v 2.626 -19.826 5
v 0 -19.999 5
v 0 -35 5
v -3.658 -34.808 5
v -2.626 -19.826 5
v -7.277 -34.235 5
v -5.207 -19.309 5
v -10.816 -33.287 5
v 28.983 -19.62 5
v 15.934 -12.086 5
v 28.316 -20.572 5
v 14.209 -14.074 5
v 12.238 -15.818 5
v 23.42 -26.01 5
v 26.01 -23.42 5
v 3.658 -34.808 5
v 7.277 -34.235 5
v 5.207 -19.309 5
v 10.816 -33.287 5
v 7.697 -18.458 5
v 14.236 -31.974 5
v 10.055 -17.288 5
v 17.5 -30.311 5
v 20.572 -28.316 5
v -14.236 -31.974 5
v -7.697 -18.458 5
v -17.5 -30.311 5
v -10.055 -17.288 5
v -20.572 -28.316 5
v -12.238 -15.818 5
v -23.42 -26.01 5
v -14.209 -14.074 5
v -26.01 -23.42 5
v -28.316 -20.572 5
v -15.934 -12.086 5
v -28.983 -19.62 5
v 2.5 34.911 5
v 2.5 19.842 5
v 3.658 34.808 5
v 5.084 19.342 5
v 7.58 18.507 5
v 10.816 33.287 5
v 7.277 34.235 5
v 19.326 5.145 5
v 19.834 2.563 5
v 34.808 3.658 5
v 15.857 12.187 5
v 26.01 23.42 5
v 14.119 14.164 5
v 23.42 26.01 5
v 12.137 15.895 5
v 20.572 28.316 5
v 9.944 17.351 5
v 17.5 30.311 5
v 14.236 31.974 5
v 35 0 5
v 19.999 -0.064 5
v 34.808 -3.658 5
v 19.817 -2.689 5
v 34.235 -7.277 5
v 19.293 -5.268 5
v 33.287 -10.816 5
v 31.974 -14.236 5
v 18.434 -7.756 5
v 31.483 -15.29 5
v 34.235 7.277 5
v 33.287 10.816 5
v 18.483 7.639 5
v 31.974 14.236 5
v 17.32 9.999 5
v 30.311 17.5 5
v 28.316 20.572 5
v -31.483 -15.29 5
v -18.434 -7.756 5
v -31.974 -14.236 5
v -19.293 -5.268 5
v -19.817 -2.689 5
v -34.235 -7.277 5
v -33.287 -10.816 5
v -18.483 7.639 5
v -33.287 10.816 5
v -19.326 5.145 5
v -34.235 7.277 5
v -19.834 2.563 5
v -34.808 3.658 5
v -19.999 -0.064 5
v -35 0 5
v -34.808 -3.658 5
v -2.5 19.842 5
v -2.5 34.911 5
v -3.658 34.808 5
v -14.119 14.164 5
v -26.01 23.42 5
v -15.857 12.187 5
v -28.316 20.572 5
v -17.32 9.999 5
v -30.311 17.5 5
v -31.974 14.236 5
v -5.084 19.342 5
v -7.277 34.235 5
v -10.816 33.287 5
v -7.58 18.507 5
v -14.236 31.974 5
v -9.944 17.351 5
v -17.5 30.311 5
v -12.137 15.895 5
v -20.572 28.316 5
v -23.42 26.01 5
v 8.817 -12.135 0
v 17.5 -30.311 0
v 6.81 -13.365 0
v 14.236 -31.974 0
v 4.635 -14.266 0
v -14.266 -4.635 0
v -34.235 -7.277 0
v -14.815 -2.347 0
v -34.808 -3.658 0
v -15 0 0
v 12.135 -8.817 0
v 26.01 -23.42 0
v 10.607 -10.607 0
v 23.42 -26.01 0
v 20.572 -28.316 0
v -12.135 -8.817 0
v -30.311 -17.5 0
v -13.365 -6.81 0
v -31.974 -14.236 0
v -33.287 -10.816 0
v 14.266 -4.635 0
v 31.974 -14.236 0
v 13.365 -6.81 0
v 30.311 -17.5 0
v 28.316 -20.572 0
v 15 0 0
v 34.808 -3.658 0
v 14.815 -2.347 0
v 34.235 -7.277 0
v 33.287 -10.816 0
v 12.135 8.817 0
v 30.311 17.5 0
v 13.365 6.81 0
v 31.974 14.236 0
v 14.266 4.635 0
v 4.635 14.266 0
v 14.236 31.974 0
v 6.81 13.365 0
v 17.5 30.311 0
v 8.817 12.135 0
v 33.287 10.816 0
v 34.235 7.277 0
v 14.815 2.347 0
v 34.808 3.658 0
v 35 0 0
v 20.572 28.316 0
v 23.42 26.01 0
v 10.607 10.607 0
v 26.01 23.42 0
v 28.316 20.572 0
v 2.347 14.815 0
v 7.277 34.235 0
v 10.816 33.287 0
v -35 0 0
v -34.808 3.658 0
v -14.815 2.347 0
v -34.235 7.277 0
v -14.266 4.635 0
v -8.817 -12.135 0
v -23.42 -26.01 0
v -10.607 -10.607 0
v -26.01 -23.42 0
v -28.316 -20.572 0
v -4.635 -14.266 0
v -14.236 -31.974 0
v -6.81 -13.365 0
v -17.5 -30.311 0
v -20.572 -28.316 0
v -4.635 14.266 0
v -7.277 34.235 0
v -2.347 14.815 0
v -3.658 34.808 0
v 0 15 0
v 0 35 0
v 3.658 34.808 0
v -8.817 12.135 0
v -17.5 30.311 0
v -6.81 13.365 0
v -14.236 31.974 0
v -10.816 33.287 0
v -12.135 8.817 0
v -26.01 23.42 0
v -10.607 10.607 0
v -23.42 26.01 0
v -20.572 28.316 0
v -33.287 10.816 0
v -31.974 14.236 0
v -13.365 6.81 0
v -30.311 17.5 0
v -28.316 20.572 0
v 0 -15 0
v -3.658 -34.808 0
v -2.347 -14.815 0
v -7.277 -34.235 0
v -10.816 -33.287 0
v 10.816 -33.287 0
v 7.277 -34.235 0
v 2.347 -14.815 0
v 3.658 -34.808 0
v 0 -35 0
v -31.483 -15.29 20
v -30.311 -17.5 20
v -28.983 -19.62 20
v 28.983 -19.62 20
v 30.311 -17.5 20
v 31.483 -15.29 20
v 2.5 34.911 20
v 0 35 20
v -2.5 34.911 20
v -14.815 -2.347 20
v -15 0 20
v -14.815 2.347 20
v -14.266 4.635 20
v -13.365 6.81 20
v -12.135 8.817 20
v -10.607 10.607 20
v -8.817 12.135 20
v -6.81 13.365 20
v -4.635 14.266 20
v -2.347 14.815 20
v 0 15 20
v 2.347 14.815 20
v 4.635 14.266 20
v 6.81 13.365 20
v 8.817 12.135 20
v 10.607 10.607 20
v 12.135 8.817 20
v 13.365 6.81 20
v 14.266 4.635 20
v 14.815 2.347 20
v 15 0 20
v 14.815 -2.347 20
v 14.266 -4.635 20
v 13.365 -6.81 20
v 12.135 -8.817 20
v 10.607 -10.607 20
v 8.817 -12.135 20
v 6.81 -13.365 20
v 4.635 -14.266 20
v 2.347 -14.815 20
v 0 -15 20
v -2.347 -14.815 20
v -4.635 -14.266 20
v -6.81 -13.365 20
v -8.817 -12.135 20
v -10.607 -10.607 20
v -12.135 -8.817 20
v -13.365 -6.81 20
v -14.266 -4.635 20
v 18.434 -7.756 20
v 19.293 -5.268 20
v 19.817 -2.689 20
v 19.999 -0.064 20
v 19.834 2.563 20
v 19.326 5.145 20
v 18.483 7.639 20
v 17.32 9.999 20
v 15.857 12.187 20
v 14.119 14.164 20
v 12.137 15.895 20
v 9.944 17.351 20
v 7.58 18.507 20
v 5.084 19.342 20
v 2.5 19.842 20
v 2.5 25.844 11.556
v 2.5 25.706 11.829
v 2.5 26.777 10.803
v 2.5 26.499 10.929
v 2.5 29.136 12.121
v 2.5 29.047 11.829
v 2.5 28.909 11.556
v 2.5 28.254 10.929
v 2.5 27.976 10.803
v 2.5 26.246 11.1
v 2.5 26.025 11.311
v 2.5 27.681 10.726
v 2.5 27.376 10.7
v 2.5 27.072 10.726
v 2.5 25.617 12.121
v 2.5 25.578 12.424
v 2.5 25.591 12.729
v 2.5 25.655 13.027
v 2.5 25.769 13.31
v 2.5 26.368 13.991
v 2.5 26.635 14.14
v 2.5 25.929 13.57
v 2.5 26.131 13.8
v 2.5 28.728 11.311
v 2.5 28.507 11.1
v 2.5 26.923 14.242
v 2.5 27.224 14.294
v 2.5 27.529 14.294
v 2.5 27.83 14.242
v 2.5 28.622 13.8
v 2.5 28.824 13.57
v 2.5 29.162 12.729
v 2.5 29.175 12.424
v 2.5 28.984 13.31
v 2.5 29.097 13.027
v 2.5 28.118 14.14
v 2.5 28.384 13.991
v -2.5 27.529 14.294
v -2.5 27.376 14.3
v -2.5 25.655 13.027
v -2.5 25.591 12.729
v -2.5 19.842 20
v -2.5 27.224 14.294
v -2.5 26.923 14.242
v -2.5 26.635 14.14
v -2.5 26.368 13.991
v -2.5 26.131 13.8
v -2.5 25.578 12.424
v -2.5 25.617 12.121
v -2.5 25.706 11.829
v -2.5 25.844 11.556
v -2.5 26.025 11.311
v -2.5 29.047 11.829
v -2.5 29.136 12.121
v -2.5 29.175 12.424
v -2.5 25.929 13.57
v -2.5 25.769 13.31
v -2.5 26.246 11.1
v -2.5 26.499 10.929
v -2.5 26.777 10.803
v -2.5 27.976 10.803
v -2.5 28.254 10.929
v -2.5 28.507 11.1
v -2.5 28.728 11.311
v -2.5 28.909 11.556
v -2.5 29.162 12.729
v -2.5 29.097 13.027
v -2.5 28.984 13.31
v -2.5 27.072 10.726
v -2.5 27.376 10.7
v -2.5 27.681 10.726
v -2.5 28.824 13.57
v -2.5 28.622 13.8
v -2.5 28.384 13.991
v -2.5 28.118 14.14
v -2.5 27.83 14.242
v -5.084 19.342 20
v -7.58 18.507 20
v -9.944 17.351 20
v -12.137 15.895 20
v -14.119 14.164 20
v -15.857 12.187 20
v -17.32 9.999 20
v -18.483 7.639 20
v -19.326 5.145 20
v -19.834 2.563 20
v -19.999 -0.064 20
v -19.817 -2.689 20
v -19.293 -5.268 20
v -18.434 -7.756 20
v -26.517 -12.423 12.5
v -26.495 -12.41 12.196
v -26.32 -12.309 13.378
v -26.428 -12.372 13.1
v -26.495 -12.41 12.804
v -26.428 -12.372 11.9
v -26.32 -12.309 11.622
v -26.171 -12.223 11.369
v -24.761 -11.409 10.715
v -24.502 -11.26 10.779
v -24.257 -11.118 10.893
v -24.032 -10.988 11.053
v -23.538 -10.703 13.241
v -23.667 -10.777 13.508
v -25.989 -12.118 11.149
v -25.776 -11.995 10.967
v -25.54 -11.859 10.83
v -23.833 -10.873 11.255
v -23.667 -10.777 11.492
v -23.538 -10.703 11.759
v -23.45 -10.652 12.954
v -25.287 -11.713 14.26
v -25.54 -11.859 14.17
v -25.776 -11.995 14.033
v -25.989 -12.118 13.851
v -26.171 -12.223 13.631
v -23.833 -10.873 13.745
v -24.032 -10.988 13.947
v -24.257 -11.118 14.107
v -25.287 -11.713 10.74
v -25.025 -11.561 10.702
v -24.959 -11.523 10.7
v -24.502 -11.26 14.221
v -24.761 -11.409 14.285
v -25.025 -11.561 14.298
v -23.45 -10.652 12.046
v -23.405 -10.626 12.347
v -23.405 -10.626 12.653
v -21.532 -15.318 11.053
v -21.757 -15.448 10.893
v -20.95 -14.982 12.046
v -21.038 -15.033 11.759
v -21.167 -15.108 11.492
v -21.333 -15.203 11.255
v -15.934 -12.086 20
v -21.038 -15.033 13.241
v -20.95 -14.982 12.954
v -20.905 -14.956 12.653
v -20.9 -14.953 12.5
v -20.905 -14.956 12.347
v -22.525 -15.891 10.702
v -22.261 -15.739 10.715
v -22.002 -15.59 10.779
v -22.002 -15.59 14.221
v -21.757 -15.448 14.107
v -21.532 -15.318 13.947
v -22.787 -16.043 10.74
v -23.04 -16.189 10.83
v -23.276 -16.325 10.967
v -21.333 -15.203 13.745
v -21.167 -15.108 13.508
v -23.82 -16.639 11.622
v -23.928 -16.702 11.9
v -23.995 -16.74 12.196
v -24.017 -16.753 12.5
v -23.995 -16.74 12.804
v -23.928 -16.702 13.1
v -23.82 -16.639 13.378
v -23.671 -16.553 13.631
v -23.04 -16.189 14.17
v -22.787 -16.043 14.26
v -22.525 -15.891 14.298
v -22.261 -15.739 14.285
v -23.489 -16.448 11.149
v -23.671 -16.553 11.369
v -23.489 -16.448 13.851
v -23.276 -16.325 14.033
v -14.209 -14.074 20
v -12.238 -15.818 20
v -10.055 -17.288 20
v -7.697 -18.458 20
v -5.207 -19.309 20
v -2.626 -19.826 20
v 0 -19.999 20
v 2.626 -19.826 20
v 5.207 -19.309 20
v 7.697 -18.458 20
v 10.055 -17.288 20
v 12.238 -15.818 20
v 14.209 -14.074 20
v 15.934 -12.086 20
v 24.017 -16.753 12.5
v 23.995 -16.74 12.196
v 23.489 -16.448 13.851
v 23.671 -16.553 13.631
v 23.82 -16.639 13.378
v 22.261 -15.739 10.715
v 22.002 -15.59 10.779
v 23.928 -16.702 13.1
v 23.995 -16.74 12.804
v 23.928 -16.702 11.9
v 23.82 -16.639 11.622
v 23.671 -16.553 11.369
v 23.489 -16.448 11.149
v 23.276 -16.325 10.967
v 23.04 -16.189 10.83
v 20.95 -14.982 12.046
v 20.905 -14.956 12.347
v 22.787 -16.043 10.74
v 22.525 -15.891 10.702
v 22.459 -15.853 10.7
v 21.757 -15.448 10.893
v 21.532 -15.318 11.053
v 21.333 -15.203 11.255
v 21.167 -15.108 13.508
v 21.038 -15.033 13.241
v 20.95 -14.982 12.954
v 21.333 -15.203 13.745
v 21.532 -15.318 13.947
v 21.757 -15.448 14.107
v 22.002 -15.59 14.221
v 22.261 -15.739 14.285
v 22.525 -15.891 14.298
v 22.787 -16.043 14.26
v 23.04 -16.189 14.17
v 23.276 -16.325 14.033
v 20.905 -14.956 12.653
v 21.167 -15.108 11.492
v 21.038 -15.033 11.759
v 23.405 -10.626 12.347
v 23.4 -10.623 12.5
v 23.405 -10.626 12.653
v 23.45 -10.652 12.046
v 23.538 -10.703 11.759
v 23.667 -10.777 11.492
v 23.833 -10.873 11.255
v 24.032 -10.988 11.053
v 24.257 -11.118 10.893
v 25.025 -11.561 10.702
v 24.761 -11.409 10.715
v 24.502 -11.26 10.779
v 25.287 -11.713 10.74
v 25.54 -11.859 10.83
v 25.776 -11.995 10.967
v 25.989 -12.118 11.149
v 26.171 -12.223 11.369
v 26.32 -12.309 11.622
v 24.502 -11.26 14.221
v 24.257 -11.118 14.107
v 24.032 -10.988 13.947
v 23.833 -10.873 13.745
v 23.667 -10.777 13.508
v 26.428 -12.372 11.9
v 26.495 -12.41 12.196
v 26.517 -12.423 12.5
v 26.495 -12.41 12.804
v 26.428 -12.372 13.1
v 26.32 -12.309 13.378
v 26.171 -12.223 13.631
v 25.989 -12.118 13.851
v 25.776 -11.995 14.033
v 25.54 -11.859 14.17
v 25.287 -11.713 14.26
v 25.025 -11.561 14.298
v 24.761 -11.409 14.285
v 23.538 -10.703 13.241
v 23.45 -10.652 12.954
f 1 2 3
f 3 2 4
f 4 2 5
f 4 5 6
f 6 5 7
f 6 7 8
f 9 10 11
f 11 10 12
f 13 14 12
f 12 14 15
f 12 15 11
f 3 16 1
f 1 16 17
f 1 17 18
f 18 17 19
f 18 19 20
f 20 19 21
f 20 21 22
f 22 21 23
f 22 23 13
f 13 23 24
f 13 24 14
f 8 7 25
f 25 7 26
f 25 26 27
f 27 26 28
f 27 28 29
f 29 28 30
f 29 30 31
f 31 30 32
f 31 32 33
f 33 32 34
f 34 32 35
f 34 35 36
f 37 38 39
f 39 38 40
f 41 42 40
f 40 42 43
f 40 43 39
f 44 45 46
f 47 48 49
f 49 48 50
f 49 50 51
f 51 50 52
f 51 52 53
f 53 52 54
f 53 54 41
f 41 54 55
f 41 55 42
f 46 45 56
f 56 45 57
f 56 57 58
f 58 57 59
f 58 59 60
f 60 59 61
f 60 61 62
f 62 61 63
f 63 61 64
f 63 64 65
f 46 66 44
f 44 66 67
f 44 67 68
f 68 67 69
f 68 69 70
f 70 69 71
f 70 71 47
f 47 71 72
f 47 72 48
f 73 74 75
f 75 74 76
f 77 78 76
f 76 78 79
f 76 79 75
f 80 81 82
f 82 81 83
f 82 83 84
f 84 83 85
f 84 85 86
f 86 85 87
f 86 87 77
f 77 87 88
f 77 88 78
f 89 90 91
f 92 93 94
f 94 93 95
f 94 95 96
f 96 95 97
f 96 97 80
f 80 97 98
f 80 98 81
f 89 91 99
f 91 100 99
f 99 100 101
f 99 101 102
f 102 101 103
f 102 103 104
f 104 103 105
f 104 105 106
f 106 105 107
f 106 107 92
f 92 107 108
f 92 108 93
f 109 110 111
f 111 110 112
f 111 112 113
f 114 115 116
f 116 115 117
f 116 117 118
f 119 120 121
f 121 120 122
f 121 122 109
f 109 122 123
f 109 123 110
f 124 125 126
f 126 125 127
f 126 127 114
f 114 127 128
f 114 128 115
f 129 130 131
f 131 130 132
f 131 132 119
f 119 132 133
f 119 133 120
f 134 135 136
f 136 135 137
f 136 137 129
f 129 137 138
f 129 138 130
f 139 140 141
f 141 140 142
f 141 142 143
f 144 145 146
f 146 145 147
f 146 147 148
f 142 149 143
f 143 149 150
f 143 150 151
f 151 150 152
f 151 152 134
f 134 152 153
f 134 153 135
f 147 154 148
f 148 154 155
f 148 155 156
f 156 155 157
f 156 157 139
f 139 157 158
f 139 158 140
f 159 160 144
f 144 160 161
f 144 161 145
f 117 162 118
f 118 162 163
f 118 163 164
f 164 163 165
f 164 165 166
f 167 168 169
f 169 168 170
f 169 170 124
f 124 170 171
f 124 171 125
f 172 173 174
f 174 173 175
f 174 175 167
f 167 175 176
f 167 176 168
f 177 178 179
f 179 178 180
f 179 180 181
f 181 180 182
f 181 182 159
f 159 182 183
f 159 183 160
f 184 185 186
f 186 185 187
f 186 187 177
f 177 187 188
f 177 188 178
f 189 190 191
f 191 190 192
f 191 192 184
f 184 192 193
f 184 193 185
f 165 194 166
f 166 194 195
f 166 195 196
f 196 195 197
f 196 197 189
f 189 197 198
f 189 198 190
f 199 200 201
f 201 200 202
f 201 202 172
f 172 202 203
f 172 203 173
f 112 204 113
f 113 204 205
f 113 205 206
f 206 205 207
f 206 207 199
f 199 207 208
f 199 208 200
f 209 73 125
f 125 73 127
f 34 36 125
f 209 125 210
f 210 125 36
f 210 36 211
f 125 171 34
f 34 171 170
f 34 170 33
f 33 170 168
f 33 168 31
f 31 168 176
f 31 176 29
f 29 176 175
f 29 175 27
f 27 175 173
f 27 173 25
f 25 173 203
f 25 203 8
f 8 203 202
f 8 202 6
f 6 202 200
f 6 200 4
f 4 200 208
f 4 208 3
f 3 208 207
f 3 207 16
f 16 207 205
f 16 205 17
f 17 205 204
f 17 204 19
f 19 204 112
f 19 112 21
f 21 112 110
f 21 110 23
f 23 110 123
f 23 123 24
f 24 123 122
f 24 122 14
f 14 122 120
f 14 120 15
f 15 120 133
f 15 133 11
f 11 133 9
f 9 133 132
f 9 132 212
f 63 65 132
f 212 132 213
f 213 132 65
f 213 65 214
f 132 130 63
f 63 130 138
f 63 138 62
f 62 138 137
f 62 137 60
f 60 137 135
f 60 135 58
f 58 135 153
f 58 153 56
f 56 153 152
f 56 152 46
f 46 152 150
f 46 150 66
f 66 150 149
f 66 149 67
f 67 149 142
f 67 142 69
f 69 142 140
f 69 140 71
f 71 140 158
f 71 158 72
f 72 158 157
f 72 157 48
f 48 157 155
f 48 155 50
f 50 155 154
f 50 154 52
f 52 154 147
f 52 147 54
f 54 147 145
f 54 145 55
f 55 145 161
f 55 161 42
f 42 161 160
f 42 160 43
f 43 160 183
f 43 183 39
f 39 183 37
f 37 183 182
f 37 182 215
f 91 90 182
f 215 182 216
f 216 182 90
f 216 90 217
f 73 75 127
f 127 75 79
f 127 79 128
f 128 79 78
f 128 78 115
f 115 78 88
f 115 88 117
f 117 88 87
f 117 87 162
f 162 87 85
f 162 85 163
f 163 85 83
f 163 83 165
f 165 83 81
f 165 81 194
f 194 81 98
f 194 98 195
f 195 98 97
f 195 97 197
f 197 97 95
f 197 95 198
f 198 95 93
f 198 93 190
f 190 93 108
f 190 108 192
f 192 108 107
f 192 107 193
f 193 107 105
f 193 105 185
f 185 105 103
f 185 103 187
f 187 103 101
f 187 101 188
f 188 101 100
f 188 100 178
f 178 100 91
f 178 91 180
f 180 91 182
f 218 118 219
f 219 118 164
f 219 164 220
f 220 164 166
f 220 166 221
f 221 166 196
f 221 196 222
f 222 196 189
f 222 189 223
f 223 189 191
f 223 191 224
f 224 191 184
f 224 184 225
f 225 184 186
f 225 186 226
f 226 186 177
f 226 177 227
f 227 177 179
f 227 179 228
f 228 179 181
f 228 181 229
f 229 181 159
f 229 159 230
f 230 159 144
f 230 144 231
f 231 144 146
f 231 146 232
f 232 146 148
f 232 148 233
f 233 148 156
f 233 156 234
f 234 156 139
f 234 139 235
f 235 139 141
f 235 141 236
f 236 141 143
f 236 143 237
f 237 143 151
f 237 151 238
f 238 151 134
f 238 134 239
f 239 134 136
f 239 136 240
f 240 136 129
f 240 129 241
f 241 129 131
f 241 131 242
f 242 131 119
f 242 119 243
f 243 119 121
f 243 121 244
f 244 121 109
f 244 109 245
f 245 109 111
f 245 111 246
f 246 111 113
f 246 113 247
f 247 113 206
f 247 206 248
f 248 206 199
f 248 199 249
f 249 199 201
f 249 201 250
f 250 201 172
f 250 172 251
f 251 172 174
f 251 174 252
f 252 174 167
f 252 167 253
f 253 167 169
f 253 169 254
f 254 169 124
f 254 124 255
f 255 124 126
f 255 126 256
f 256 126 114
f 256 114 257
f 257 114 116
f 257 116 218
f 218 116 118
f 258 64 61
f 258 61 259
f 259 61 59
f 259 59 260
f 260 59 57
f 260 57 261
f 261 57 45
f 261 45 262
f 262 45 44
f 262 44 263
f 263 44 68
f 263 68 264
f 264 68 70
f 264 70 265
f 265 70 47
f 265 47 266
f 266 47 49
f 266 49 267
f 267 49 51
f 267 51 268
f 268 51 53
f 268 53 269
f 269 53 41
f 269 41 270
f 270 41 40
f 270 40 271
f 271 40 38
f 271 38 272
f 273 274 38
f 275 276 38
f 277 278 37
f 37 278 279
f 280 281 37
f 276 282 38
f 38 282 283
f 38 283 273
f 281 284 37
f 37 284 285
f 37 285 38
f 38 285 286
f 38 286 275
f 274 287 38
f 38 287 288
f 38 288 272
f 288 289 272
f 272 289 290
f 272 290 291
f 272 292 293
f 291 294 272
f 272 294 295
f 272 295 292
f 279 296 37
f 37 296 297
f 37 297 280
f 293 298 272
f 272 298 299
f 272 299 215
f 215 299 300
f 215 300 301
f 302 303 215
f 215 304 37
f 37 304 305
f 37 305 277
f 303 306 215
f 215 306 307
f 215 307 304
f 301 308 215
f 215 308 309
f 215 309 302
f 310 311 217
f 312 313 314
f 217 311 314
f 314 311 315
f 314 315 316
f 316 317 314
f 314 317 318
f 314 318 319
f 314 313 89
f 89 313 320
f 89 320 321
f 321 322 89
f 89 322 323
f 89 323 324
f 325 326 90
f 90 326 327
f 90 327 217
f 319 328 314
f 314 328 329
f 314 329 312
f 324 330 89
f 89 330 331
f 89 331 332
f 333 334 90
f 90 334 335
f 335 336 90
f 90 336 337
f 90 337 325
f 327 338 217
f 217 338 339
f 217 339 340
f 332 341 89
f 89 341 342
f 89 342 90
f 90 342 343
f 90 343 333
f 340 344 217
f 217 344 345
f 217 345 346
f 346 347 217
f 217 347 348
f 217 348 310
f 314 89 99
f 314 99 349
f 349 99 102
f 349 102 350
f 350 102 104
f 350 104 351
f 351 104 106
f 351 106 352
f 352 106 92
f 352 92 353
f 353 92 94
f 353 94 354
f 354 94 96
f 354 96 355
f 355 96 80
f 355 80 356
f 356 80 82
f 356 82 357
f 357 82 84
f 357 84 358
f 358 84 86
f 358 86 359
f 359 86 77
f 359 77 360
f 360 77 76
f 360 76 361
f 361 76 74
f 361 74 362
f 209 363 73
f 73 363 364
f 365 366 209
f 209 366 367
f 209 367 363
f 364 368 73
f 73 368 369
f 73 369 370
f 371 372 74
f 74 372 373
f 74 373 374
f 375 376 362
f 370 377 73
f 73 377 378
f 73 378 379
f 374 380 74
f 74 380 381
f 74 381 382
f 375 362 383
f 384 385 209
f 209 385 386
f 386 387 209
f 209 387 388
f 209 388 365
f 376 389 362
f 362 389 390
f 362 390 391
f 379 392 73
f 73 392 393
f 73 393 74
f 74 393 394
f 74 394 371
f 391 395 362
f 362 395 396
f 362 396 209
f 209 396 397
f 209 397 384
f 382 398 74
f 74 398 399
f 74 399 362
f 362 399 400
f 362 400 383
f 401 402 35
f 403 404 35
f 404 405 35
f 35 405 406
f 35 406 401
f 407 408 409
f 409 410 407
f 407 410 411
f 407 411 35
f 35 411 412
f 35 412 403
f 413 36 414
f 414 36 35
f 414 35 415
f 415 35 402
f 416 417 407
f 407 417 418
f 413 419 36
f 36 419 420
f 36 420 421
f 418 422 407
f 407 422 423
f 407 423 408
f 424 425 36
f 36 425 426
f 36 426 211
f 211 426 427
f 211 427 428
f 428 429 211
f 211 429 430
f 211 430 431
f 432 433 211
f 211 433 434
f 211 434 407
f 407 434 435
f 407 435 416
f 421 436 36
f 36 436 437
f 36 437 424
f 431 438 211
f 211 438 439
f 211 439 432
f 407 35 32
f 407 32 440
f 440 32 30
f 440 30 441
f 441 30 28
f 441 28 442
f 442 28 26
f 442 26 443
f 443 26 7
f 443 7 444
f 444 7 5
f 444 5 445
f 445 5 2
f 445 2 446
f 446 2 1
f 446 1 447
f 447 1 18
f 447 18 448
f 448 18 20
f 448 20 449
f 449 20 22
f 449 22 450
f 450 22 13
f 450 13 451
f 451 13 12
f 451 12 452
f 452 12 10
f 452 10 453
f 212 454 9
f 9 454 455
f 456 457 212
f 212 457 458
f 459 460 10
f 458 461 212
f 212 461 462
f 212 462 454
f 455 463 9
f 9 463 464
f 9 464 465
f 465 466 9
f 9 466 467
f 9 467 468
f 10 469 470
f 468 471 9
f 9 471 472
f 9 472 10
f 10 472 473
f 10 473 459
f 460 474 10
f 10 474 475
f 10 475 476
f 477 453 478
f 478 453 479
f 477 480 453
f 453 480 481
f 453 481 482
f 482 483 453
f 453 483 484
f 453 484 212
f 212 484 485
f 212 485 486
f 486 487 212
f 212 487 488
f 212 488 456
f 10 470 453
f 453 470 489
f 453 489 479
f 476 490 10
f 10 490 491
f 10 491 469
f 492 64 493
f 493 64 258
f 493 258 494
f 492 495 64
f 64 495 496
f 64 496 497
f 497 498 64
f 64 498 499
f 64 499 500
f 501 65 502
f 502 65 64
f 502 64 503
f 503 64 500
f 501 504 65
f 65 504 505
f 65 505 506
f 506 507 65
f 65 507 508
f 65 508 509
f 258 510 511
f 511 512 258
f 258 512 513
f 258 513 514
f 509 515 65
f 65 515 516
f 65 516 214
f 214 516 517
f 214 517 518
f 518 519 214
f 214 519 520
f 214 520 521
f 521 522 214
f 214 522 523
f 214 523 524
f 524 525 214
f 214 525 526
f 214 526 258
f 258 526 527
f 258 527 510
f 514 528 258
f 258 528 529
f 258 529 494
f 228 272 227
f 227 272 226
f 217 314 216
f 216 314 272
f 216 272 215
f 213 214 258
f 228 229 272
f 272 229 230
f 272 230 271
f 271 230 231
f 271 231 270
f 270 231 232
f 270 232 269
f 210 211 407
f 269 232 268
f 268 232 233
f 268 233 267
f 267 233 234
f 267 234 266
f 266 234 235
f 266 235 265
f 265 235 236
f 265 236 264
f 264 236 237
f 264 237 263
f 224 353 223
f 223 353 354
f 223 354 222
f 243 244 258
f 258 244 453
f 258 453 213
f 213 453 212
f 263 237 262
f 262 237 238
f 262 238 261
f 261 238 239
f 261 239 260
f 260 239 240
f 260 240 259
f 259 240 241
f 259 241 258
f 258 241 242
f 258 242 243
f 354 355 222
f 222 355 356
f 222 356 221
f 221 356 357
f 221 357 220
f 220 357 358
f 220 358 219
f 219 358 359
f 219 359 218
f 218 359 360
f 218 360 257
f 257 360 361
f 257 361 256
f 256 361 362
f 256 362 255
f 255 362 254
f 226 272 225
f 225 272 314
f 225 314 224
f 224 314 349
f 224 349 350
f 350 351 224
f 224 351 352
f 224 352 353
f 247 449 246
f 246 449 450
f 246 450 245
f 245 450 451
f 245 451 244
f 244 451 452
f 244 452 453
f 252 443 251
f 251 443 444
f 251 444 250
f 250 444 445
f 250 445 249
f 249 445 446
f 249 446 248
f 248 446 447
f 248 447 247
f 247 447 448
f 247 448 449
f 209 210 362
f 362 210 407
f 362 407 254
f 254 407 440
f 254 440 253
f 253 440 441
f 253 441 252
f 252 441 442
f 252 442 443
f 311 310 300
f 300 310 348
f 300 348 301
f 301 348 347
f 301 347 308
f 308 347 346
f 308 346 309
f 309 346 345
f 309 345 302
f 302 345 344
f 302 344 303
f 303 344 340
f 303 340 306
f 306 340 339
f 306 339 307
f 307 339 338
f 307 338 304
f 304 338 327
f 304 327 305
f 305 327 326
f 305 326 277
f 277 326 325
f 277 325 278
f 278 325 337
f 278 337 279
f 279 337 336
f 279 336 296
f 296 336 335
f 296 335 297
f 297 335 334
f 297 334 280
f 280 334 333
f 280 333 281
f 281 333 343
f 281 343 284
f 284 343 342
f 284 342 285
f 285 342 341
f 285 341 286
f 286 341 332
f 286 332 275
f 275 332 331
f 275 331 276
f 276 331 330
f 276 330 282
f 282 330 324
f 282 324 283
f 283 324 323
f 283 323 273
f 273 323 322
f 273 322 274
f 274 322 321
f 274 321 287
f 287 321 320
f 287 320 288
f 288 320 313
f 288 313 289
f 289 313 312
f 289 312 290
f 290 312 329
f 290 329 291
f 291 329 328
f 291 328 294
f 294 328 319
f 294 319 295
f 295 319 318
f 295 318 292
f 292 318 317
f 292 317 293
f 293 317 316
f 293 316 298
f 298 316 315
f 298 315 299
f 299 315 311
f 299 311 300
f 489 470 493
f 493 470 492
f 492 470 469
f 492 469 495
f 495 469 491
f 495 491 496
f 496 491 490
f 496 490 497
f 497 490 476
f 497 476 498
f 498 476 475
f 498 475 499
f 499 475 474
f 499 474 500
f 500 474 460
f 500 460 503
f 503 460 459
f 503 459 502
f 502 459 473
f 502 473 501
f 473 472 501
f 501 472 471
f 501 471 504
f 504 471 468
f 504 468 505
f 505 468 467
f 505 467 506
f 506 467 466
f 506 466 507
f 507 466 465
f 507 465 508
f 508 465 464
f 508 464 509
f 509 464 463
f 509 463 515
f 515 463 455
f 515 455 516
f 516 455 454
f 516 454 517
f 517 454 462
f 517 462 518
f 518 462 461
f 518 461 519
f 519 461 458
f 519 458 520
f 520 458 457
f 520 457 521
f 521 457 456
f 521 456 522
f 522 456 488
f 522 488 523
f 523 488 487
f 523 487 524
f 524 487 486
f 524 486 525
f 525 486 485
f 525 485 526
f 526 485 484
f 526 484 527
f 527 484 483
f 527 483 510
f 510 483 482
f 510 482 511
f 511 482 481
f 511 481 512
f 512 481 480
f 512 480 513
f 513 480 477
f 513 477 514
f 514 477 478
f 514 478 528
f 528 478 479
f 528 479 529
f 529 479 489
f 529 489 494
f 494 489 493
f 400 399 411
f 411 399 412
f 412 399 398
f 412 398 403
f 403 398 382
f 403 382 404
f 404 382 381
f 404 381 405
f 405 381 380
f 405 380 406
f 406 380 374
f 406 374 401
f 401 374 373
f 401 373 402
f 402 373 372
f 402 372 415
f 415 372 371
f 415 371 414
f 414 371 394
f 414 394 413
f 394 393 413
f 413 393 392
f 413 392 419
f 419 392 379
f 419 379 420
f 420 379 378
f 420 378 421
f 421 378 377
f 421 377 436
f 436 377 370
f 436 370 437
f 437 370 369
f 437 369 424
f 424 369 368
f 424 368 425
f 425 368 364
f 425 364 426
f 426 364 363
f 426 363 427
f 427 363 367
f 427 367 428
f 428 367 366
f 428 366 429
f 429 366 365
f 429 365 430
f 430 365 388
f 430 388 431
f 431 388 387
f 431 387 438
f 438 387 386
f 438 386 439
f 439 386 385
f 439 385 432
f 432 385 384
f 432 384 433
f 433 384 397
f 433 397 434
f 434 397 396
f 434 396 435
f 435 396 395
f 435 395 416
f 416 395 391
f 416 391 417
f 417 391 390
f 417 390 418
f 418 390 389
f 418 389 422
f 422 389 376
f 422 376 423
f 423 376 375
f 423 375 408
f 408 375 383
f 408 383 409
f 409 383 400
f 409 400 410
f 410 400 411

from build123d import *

# Parameters (mm, degrees)
SKETCH2_R           = 35
SKETCH2_R_2         = 15
BOSS_EXTRUDE1_DEPTH = 5
SKETCH3_R           = 19.99897621
SKETCH3_R_2         = 15
BOSS_EXTRUDE3_DEPTH = 15
CUT_EXTRUDE1_REACH  = 57.057
SKETCH4_R           = 1.8
CIRPATTERN1_COUNT   = 3


with BuildPart() as part:
    # Sketch2 → Boss-Extrude1 (new body)
    with BuildSketch(Plane.XY):
        Circle(SKETCH2_R)
        Circle(SKETCH2_R_2, mode=Mode.SUBTRACT)
    extrude(amount=BOSS_EXTRUDE1_DEPTH)

    # Sketch3 → Boss-Extrude3 (add)
    # profile 1 of 4: a face of its own
    with BuildSketch(Plane.XY.offset(5)):
        Circle(SKETCH3_R)
        Circle(SKETCH3_R_2, mode=Mode.SUBTRACT)
    # profile 2 of 4: a face of its own
    with BuildSketch(Plane.XY.offset(5)):
        with BuildLine():
            Line((-2.5, 34.910600109), (-2.5, 19.84210295))
            ThreePointArc((-2.5, 19.84210295), (0, 19.99897621), (2.5, 19.84210295))
            Line((2.5, 19.84210295), (2.5, 34.910600109))
            ThreePointArc((2.5, 34.910600109), (0, 35), (-2.5, 34.910600109))
        make_face()
    # profile 3 of 4: a face of its own
    with BuildSketch(Plane.XY.offset(5)):
        with BuildLine():
            ThreePointArc((18.433765219, -7.755987965), (17.319621448, -9.999488105), (15.933765219, -12.086114984))
            Line((15.933765219, -12.086114984), (28.983466556, -19.620363564))
            ThreePointArc((28.983466556, -19.620363564), (30.310889132, -17.5), (31.483466556, -15.290236545))
            Line((31.483466556, -15.290236545), (18.433765219, -7.755987965))
        make_face()
    # profile 4 of 4: a face of its own
    with BuildSketch(Plane.XY.offset(5)):
        with BuildLine():
            Line((-28.983466556, -19.620363564), (-15.933765219, -12.086114984))
            ThreePointArc((-15.933765219, -12.086114984), (-17.319621448, -9.999488105), (-18.433765219, -7.755987965))
            Line((-18.433765219, -7.755987965), (-31.483466556, -15.290236545))
            ThreePointArc((-31.483466556, -15.290236545), (-30.310889132, -17.5), (-28.983466556, -19.620363564))
        make_face()
    extrude(amount=BOSS_EXTRUDE3_DEPTH)

    # Sketch4 → Cut-Extrude1 (cut, up to next)
    with BuildSketch(Plane(origin=(2.5, 0, 0), x_dir=(0, 0, -1), z_dir=(1, 0, 0)), mode=Mode.PRIVATE) as cut_extrude1_sk1:
        with Locations((-12.5, 27.376351529)):
            Circle(SKETCH4_R)
    cut_extrude1_tool1 = extrude(cut_extrude1_sk1.sketch, amount=-CUT_EXTRUDE1_REACH, mode=Mode.PRIVATE) & part.part
    cut_extrude1 = cut_extrude1_tool1.solids().sort_by_distance((2.5, 27.376352, 12.5))[0]
    add(cut_extrude1, mode=Mode.SUBTRACT)

    # CirPattern1: Cut-Extrude1 ×3 about axis
    cirpattern1_axis = Axis((0, 0, 5), (0, 0, -1))
    for i in range(1, CIRPATTERN1_COUNT):
        add(cut_extrude1.rotate(cirpattern1_axis, i * 360 / CIRPATTERN1_COUNT), mode=Mode.SUBTRACT)


solid = part.part
